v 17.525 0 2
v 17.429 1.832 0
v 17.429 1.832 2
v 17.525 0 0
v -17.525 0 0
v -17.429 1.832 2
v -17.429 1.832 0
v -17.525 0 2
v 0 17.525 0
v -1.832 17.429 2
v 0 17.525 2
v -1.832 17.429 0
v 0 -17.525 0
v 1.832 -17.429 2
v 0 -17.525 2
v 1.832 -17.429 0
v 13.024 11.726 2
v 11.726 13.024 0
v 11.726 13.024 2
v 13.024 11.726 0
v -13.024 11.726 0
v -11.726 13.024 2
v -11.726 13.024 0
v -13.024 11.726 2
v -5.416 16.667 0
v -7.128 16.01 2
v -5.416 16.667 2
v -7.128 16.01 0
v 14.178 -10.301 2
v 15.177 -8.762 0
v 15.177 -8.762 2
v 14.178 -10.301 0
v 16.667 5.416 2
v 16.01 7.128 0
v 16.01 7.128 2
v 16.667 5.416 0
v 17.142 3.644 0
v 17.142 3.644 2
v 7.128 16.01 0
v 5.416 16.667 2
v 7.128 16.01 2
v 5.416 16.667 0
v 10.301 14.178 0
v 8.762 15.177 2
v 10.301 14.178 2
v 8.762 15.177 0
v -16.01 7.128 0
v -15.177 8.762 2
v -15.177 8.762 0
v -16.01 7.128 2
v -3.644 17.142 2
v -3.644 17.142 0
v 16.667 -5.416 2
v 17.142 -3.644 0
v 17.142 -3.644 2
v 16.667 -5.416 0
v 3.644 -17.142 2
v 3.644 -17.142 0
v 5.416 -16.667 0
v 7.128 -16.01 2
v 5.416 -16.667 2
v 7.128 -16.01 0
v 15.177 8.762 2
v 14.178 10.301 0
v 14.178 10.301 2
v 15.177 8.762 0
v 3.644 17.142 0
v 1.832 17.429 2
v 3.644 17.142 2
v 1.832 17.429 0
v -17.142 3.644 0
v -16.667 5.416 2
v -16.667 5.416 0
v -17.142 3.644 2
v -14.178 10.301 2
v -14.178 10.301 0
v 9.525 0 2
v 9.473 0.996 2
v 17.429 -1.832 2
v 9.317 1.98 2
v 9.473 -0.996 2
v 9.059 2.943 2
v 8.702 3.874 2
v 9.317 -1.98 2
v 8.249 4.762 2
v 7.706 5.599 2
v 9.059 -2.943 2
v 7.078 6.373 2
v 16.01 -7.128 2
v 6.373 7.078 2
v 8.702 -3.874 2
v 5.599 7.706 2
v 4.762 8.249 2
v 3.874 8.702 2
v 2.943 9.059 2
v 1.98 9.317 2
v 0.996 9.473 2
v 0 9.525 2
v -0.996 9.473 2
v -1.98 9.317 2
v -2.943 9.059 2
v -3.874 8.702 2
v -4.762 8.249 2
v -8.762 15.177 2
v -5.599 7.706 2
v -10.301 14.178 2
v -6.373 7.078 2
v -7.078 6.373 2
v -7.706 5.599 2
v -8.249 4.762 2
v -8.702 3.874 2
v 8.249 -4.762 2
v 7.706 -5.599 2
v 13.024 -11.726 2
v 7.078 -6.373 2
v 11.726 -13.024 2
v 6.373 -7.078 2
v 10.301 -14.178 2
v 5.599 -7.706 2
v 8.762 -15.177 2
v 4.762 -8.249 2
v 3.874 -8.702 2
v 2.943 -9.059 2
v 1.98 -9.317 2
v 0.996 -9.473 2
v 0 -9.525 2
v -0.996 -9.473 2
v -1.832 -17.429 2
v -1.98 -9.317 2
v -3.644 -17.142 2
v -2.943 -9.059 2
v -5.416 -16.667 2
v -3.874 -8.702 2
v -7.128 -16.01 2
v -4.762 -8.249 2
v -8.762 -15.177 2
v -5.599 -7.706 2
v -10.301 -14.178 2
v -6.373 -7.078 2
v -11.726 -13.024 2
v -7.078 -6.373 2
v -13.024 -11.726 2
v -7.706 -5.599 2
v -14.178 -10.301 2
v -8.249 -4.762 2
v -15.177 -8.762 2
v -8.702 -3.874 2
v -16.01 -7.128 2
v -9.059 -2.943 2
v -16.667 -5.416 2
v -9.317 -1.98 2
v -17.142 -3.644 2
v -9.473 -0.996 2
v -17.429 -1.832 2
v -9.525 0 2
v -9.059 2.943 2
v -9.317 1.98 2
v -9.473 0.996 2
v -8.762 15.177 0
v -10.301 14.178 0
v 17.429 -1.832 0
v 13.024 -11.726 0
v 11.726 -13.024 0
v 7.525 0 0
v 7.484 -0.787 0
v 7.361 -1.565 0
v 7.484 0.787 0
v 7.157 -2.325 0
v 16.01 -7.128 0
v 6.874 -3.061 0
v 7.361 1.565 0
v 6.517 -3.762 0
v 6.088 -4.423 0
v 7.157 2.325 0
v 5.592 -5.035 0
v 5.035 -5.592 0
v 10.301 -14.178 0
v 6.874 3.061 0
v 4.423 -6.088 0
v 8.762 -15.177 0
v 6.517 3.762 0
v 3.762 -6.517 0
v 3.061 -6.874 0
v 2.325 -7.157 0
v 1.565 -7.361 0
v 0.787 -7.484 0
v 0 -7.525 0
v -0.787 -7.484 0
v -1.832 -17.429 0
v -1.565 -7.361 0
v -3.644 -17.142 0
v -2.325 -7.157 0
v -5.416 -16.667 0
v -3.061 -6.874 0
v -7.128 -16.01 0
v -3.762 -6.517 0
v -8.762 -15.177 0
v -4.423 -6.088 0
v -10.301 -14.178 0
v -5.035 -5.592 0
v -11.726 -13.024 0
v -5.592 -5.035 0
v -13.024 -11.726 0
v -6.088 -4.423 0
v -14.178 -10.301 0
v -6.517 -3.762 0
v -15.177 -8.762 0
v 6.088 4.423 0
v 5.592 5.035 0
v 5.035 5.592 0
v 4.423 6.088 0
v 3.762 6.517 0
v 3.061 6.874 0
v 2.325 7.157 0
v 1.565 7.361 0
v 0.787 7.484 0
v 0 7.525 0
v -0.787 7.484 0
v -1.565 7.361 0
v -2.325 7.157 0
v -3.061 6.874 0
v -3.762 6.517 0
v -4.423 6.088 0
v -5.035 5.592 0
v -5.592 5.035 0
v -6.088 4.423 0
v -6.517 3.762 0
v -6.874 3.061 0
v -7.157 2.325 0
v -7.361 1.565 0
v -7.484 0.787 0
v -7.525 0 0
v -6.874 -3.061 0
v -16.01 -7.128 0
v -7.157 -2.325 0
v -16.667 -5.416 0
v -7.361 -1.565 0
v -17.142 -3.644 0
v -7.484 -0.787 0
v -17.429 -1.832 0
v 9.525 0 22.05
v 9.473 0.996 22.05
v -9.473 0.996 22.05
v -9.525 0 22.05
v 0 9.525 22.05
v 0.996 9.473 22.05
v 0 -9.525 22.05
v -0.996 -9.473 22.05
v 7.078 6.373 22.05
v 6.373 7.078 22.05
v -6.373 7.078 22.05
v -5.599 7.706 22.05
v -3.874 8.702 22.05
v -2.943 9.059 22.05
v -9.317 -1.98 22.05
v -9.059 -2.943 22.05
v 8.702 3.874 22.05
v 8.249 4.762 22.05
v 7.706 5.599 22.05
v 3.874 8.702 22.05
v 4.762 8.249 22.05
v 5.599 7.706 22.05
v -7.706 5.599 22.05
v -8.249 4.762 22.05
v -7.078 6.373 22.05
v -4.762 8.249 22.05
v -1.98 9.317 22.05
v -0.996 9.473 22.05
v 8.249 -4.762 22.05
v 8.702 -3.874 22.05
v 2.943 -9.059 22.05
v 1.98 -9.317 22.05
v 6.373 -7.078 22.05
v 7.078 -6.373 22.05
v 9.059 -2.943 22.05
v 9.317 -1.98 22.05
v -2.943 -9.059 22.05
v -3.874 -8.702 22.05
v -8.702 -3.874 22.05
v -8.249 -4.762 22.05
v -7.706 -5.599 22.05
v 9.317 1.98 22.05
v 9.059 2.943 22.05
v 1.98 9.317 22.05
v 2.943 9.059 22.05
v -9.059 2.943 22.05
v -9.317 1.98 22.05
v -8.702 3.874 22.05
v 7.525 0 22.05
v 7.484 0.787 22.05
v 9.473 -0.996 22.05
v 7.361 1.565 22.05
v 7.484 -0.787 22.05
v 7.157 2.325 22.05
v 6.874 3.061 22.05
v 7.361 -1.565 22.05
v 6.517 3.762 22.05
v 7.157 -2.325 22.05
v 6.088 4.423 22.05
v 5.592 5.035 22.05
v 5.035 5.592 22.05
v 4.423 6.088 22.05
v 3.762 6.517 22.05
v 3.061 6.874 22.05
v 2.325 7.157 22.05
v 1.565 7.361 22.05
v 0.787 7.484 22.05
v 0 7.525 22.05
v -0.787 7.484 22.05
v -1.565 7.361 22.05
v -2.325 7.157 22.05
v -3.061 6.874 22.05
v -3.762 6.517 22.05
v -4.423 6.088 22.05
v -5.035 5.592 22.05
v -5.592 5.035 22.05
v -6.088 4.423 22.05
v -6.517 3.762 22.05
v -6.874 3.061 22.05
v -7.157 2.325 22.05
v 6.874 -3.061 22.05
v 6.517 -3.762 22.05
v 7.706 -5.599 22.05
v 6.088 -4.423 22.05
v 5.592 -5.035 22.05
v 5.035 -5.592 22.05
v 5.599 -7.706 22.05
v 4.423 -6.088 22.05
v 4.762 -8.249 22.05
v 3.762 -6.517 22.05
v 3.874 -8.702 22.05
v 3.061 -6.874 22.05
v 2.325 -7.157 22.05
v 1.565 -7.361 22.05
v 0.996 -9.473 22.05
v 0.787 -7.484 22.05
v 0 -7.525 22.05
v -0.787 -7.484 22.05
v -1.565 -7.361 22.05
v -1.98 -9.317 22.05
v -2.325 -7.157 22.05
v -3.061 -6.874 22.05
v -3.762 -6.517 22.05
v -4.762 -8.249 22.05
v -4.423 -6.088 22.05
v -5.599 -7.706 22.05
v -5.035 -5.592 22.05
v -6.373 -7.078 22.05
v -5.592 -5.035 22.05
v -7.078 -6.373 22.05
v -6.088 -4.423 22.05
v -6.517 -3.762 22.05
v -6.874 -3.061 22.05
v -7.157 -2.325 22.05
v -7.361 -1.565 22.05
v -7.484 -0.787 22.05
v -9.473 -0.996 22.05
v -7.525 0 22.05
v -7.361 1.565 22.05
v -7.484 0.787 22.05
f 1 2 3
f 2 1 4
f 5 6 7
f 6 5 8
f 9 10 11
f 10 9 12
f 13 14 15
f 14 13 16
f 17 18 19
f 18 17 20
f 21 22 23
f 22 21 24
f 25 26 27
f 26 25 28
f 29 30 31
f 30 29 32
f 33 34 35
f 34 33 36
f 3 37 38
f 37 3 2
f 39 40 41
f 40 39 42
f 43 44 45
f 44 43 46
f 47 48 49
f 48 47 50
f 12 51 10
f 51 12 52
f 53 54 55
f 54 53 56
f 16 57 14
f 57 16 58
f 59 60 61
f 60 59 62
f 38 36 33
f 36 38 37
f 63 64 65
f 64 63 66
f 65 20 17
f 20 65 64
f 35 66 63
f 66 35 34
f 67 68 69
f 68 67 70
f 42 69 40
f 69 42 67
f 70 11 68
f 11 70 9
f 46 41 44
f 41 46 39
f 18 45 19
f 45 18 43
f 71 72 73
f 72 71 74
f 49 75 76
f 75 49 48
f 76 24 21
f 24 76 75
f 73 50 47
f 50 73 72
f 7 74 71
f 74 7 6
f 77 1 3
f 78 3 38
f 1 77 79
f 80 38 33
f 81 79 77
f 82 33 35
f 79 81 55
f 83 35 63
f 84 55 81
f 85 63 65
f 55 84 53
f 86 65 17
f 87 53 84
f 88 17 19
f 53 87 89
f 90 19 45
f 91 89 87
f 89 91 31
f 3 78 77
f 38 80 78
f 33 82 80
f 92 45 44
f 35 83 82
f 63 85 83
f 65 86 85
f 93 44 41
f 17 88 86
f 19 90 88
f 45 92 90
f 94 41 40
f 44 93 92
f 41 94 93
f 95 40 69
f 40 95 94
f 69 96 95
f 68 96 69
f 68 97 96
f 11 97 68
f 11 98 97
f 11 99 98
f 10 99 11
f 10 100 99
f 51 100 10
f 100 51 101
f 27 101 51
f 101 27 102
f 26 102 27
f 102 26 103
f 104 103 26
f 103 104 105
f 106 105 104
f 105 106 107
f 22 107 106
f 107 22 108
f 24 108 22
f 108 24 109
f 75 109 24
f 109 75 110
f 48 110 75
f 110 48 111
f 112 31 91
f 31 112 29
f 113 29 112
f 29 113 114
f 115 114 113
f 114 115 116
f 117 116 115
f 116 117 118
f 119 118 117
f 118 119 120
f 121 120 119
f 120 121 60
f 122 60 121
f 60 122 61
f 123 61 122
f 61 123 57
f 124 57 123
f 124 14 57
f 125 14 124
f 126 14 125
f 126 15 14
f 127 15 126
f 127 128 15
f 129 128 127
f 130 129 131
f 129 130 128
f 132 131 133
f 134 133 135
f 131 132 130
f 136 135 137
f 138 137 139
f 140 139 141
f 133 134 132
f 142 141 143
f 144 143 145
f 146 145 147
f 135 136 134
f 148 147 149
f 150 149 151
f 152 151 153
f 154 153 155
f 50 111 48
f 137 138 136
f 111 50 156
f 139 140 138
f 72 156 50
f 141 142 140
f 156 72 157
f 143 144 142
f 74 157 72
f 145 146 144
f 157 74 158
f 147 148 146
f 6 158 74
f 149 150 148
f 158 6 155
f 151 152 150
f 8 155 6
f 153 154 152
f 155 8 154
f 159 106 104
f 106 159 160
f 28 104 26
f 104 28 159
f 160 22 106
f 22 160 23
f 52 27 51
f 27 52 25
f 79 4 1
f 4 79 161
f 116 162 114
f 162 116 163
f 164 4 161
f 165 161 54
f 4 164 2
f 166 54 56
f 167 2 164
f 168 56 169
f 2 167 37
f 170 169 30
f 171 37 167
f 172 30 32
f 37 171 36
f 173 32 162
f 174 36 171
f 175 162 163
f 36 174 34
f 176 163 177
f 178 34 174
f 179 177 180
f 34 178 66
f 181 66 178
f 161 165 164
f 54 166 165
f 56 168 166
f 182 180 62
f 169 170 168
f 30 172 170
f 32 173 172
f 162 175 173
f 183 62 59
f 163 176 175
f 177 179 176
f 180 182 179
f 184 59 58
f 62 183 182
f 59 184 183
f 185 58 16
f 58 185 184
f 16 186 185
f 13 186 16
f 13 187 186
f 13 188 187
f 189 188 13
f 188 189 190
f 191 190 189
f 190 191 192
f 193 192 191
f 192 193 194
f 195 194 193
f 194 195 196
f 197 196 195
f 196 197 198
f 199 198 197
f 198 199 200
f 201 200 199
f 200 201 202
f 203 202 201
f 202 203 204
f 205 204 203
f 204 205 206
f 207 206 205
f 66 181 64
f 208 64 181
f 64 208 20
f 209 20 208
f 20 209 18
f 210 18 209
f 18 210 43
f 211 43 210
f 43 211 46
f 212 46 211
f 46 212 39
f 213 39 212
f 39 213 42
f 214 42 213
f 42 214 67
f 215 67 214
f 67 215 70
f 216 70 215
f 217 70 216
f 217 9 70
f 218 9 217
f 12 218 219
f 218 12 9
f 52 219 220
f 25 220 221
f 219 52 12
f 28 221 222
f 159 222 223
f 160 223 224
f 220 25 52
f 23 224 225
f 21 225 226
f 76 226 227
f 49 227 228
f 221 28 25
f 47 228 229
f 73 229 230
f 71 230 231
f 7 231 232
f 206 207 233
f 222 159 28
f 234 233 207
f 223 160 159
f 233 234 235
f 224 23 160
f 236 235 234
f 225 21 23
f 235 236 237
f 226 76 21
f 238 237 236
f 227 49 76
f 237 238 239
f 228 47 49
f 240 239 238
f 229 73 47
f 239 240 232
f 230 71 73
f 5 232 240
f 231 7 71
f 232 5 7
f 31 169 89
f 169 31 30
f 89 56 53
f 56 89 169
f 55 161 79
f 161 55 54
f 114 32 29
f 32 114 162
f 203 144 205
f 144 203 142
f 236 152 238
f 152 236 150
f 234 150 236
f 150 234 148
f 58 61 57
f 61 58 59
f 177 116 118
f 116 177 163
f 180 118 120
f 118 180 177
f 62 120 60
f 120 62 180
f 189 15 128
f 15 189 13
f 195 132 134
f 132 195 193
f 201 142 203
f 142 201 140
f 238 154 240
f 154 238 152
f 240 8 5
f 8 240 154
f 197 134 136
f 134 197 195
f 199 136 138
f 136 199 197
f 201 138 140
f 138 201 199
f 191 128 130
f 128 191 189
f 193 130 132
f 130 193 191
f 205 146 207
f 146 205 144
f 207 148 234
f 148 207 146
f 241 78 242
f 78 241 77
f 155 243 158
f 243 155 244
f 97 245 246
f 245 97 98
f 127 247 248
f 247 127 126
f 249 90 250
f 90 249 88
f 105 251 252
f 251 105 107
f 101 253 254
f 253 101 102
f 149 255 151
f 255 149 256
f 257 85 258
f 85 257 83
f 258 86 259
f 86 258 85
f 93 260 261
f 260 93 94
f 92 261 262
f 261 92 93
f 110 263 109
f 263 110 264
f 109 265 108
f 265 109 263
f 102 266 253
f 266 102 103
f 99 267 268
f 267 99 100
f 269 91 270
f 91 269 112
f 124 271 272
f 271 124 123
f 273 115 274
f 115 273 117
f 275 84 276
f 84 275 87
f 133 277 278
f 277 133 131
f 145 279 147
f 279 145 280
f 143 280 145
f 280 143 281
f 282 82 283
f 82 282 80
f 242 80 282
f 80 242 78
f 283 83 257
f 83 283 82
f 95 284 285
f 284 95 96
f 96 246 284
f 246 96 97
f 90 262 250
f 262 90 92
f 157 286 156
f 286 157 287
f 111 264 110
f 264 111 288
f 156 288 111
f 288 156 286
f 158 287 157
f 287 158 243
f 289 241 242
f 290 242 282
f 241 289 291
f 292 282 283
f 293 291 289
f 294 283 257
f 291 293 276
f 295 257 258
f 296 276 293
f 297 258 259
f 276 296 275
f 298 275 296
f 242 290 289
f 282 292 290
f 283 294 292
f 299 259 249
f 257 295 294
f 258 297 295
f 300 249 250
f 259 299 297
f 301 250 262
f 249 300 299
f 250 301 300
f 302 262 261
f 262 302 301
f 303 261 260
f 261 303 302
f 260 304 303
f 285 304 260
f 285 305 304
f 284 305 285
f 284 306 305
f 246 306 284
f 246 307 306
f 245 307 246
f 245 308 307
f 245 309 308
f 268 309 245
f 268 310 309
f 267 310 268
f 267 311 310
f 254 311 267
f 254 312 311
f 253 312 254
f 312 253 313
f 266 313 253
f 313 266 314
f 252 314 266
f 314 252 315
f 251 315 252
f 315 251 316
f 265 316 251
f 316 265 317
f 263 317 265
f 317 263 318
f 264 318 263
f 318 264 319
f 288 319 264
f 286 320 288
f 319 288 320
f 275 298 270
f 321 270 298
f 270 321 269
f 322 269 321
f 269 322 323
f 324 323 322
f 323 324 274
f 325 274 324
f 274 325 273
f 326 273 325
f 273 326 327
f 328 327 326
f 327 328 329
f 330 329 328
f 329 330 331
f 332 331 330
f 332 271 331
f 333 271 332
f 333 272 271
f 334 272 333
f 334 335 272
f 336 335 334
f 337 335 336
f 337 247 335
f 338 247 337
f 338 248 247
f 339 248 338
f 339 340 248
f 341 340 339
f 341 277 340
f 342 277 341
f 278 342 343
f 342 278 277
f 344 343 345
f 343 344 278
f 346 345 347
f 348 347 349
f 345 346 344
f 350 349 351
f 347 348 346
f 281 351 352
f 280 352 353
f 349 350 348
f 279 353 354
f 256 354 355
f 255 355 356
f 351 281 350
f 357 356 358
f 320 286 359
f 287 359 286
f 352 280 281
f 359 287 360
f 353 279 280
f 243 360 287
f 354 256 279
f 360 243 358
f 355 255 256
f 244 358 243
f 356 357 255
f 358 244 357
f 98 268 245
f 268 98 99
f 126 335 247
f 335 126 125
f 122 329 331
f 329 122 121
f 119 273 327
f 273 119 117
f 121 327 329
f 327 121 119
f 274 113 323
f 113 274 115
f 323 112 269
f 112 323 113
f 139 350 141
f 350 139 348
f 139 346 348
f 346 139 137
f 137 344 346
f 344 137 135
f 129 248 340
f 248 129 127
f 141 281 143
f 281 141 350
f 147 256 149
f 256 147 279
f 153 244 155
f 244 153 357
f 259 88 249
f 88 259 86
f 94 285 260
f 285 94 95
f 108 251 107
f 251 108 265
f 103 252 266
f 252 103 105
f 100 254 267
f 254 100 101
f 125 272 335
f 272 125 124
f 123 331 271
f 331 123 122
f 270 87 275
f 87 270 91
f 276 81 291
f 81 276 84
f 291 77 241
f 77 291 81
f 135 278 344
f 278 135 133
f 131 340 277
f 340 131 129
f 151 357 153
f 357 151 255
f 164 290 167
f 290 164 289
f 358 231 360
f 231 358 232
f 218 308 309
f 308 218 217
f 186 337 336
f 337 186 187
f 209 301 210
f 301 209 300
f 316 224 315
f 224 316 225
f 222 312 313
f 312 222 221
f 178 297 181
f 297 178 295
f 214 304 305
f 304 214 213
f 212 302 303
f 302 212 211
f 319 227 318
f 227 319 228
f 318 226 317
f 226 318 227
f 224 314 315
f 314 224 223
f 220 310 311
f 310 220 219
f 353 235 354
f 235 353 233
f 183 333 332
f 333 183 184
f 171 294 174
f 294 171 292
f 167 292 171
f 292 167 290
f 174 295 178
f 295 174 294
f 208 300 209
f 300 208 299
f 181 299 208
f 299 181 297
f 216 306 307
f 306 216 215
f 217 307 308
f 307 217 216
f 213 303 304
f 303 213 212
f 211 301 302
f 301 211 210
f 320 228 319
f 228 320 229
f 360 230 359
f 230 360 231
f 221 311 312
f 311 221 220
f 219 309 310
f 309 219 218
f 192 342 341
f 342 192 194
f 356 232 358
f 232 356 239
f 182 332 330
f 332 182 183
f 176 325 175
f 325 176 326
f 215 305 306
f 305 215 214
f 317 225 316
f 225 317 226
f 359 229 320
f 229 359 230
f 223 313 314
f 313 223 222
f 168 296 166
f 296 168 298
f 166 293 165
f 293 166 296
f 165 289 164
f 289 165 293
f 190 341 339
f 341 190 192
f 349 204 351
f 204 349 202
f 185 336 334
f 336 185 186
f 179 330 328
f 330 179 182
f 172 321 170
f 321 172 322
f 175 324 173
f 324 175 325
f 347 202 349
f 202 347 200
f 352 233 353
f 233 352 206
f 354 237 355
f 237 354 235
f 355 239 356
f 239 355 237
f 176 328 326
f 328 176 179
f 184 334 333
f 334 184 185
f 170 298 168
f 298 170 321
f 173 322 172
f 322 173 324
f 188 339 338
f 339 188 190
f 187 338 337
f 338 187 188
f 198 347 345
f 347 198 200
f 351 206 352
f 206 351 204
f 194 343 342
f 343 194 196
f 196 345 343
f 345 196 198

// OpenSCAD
difference(){
	union() {
		union() {
			cylinder($fn = 60, h = 2, r = 17.5250000000);
			cylinder($fn = 60, h = 22.0500000000, r = 9.5250000000);
		}
	}
	/* Holes Below*/
	union(){
		union(){
			translate(v = [0, 0, -1]) {
				cylinder($fn = 60, h = 24.0500000000, r = 7.5250000000);
			}
		}
	} /* End Holes */ 
}
